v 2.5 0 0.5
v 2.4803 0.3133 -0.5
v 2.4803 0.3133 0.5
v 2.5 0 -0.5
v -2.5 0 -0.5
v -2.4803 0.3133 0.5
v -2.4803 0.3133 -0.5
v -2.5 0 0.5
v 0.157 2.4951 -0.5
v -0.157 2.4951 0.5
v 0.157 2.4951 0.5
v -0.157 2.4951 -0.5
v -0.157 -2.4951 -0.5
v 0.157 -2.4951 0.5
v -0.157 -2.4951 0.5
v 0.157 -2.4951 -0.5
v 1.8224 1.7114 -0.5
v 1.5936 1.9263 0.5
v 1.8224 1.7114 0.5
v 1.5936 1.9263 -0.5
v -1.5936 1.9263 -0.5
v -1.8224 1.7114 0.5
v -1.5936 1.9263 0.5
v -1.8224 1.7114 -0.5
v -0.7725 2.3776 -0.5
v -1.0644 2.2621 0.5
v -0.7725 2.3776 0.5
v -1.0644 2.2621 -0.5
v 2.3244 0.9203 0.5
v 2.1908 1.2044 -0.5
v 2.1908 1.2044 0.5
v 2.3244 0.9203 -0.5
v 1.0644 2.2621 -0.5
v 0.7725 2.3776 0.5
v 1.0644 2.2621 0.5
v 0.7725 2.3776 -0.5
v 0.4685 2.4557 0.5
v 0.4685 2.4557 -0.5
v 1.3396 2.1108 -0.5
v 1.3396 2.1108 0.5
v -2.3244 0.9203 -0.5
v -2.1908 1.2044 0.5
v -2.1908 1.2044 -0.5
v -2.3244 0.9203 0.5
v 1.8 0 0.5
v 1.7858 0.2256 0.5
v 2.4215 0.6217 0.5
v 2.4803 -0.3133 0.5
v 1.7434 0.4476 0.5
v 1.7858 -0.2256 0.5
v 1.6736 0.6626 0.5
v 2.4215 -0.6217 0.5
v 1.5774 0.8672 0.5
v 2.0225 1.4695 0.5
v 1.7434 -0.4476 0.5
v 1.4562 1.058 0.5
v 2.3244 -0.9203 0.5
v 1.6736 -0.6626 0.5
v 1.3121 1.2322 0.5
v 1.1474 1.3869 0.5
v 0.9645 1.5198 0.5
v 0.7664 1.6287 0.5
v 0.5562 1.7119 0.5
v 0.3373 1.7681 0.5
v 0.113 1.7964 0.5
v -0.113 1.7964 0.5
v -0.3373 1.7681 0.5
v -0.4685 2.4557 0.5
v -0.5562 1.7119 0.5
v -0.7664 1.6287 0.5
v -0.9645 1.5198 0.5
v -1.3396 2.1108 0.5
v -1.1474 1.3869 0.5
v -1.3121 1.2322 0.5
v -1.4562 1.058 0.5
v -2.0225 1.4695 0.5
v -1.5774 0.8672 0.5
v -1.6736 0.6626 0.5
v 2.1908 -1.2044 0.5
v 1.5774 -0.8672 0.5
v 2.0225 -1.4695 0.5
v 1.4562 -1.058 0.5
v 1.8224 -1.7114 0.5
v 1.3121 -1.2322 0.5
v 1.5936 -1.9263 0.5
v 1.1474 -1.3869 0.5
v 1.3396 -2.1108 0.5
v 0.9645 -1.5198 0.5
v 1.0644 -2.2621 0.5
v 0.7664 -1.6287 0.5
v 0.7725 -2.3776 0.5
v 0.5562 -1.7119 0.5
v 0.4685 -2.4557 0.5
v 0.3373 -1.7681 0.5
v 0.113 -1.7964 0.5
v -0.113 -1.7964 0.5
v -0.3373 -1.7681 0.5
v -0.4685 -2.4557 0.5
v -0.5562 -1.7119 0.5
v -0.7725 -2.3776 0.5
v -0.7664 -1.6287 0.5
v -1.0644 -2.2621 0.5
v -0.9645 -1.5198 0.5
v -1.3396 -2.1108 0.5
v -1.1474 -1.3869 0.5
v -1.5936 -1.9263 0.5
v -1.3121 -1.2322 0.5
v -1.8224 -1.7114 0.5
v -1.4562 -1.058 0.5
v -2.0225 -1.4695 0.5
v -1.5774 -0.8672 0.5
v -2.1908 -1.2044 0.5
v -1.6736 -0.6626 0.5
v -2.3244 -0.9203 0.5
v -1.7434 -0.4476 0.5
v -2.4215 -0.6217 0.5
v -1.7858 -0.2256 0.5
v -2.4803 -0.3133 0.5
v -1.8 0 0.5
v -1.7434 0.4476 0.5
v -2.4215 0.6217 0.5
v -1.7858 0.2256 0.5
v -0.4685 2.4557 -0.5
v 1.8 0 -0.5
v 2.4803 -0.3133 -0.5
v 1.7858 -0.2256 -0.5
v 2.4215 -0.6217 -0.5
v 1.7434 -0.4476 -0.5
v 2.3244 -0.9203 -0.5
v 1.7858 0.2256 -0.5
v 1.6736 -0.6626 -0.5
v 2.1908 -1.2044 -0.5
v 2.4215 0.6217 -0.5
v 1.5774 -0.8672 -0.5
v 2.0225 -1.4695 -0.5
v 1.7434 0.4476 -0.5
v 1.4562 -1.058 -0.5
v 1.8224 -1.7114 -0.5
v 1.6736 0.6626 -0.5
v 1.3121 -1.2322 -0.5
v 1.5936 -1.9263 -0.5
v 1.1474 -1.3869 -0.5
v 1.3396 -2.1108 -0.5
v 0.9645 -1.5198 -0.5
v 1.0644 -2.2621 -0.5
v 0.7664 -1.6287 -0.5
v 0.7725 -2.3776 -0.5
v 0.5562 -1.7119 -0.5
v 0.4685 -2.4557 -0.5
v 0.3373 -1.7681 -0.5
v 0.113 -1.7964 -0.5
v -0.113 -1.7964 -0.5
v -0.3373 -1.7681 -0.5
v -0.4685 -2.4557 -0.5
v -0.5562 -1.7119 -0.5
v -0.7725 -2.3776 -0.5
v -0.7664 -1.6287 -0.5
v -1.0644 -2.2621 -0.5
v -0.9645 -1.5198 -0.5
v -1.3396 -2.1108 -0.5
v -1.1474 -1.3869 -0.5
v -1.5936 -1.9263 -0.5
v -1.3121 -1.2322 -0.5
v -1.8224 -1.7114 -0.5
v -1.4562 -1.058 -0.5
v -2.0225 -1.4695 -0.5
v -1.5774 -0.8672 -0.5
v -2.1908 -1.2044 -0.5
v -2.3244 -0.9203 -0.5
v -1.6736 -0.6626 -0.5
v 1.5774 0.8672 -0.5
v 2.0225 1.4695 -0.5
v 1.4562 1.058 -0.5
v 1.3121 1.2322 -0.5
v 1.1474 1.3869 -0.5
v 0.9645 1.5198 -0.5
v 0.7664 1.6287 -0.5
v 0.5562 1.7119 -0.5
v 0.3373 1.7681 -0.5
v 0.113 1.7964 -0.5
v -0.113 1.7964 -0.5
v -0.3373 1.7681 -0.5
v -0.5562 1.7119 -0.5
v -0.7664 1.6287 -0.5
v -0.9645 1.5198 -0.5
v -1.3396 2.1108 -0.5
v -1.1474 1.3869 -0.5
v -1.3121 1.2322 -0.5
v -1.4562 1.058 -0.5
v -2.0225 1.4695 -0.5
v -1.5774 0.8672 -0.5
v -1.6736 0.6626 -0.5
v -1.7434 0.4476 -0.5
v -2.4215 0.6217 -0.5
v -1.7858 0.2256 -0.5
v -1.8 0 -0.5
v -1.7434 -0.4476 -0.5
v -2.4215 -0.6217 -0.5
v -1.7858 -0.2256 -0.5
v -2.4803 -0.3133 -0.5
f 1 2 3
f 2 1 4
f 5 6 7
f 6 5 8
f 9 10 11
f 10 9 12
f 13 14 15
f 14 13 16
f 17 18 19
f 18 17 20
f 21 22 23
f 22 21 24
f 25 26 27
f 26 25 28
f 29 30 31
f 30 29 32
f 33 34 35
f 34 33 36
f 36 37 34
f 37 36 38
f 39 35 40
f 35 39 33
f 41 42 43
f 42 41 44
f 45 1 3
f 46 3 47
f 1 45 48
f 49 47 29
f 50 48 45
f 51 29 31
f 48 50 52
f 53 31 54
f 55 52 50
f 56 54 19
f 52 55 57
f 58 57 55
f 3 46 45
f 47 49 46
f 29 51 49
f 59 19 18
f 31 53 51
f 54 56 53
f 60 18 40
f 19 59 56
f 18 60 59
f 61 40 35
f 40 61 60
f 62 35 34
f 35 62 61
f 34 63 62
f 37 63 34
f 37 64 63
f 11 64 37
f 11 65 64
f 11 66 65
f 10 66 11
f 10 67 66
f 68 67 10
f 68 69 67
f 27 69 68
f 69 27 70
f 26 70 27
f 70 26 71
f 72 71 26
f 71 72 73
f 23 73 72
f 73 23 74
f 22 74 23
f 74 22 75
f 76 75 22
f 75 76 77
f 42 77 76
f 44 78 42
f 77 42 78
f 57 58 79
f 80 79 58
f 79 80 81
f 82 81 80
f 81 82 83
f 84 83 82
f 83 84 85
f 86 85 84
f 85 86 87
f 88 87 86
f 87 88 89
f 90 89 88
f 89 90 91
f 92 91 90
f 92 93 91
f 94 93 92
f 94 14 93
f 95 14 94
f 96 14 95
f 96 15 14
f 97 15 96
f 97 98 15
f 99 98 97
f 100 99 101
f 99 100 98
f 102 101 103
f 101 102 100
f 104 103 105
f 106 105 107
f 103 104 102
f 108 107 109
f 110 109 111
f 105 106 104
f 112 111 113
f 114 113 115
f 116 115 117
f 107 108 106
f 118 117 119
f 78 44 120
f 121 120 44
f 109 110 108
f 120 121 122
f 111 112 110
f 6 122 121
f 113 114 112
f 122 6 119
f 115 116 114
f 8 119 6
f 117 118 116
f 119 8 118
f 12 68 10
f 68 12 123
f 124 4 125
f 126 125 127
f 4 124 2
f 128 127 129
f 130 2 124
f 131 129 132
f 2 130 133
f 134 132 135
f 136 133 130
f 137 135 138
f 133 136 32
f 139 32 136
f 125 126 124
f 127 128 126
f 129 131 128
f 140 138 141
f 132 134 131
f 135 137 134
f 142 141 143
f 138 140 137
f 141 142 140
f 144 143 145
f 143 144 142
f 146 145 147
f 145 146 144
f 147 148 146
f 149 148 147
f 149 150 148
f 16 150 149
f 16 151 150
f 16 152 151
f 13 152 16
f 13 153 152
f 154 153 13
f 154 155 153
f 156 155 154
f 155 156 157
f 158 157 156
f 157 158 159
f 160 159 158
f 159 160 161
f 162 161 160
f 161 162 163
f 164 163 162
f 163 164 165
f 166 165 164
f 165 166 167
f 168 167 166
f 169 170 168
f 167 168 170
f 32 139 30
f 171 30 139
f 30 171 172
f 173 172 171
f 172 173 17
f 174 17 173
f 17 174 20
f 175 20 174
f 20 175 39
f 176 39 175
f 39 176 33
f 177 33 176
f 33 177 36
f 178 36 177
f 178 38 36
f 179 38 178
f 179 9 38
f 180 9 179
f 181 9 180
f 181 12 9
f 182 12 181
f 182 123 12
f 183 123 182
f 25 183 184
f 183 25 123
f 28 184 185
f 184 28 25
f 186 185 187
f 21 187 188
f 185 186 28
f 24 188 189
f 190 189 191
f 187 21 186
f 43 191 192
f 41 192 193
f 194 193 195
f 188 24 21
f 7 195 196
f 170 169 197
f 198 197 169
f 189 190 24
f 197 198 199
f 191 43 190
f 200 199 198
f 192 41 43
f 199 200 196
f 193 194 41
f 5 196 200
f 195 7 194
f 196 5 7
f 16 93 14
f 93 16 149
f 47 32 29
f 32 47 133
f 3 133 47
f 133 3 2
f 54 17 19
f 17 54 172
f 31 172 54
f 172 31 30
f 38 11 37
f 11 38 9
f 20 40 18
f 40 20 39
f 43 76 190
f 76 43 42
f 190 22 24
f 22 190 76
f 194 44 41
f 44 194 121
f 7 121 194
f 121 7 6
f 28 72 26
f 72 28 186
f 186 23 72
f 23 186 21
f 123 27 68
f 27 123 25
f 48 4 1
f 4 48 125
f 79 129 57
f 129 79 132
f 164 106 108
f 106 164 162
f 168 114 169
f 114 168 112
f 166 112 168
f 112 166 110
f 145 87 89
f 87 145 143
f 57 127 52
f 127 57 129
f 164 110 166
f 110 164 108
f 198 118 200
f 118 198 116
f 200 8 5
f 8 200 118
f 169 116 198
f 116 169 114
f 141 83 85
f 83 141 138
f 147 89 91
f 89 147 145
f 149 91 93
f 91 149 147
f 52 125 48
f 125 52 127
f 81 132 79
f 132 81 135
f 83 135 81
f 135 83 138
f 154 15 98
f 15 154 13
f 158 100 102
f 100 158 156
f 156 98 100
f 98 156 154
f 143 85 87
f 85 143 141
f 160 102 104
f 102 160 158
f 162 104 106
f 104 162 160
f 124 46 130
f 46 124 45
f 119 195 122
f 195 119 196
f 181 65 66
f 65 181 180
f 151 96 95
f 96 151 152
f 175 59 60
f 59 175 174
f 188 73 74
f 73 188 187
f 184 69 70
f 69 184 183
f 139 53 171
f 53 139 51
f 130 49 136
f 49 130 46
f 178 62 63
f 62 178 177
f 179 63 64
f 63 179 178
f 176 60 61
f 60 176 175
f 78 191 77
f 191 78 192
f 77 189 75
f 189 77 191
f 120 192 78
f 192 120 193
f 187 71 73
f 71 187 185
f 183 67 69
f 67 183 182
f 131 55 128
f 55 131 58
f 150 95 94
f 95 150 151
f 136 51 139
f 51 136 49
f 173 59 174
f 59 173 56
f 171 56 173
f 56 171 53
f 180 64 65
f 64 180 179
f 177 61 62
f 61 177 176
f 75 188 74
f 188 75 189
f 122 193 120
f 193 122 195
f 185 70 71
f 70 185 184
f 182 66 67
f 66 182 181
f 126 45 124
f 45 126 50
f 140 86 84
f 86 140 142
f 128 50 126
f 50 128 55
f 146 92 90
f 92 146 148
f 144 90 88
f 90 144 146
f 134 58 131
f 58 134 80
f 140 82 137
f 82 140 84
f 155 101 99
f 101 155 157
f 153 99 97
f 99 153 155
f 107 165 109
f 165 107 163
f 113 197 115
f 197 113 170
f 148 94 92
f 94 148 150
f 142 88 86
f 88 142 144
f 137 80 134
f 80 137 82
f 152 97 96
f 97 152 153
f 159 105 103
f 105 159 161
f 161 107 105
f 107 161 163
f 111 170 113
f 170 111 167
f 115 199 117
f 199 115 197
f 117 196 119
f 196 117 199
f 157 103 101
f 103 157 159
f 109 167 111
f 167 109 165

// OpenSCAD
$fn = 50;


difference() {
	union() {
		translate(v = [0, 0, -0.5000000000]) {
			cylinder(h = 1, r = 2.5000000000);
		}
	}
	union() {
		translate(v = [0, 0, -100.0000000000]) {
			cylinder(h = 200, r = 1.8000000000);
		}
	}
}
